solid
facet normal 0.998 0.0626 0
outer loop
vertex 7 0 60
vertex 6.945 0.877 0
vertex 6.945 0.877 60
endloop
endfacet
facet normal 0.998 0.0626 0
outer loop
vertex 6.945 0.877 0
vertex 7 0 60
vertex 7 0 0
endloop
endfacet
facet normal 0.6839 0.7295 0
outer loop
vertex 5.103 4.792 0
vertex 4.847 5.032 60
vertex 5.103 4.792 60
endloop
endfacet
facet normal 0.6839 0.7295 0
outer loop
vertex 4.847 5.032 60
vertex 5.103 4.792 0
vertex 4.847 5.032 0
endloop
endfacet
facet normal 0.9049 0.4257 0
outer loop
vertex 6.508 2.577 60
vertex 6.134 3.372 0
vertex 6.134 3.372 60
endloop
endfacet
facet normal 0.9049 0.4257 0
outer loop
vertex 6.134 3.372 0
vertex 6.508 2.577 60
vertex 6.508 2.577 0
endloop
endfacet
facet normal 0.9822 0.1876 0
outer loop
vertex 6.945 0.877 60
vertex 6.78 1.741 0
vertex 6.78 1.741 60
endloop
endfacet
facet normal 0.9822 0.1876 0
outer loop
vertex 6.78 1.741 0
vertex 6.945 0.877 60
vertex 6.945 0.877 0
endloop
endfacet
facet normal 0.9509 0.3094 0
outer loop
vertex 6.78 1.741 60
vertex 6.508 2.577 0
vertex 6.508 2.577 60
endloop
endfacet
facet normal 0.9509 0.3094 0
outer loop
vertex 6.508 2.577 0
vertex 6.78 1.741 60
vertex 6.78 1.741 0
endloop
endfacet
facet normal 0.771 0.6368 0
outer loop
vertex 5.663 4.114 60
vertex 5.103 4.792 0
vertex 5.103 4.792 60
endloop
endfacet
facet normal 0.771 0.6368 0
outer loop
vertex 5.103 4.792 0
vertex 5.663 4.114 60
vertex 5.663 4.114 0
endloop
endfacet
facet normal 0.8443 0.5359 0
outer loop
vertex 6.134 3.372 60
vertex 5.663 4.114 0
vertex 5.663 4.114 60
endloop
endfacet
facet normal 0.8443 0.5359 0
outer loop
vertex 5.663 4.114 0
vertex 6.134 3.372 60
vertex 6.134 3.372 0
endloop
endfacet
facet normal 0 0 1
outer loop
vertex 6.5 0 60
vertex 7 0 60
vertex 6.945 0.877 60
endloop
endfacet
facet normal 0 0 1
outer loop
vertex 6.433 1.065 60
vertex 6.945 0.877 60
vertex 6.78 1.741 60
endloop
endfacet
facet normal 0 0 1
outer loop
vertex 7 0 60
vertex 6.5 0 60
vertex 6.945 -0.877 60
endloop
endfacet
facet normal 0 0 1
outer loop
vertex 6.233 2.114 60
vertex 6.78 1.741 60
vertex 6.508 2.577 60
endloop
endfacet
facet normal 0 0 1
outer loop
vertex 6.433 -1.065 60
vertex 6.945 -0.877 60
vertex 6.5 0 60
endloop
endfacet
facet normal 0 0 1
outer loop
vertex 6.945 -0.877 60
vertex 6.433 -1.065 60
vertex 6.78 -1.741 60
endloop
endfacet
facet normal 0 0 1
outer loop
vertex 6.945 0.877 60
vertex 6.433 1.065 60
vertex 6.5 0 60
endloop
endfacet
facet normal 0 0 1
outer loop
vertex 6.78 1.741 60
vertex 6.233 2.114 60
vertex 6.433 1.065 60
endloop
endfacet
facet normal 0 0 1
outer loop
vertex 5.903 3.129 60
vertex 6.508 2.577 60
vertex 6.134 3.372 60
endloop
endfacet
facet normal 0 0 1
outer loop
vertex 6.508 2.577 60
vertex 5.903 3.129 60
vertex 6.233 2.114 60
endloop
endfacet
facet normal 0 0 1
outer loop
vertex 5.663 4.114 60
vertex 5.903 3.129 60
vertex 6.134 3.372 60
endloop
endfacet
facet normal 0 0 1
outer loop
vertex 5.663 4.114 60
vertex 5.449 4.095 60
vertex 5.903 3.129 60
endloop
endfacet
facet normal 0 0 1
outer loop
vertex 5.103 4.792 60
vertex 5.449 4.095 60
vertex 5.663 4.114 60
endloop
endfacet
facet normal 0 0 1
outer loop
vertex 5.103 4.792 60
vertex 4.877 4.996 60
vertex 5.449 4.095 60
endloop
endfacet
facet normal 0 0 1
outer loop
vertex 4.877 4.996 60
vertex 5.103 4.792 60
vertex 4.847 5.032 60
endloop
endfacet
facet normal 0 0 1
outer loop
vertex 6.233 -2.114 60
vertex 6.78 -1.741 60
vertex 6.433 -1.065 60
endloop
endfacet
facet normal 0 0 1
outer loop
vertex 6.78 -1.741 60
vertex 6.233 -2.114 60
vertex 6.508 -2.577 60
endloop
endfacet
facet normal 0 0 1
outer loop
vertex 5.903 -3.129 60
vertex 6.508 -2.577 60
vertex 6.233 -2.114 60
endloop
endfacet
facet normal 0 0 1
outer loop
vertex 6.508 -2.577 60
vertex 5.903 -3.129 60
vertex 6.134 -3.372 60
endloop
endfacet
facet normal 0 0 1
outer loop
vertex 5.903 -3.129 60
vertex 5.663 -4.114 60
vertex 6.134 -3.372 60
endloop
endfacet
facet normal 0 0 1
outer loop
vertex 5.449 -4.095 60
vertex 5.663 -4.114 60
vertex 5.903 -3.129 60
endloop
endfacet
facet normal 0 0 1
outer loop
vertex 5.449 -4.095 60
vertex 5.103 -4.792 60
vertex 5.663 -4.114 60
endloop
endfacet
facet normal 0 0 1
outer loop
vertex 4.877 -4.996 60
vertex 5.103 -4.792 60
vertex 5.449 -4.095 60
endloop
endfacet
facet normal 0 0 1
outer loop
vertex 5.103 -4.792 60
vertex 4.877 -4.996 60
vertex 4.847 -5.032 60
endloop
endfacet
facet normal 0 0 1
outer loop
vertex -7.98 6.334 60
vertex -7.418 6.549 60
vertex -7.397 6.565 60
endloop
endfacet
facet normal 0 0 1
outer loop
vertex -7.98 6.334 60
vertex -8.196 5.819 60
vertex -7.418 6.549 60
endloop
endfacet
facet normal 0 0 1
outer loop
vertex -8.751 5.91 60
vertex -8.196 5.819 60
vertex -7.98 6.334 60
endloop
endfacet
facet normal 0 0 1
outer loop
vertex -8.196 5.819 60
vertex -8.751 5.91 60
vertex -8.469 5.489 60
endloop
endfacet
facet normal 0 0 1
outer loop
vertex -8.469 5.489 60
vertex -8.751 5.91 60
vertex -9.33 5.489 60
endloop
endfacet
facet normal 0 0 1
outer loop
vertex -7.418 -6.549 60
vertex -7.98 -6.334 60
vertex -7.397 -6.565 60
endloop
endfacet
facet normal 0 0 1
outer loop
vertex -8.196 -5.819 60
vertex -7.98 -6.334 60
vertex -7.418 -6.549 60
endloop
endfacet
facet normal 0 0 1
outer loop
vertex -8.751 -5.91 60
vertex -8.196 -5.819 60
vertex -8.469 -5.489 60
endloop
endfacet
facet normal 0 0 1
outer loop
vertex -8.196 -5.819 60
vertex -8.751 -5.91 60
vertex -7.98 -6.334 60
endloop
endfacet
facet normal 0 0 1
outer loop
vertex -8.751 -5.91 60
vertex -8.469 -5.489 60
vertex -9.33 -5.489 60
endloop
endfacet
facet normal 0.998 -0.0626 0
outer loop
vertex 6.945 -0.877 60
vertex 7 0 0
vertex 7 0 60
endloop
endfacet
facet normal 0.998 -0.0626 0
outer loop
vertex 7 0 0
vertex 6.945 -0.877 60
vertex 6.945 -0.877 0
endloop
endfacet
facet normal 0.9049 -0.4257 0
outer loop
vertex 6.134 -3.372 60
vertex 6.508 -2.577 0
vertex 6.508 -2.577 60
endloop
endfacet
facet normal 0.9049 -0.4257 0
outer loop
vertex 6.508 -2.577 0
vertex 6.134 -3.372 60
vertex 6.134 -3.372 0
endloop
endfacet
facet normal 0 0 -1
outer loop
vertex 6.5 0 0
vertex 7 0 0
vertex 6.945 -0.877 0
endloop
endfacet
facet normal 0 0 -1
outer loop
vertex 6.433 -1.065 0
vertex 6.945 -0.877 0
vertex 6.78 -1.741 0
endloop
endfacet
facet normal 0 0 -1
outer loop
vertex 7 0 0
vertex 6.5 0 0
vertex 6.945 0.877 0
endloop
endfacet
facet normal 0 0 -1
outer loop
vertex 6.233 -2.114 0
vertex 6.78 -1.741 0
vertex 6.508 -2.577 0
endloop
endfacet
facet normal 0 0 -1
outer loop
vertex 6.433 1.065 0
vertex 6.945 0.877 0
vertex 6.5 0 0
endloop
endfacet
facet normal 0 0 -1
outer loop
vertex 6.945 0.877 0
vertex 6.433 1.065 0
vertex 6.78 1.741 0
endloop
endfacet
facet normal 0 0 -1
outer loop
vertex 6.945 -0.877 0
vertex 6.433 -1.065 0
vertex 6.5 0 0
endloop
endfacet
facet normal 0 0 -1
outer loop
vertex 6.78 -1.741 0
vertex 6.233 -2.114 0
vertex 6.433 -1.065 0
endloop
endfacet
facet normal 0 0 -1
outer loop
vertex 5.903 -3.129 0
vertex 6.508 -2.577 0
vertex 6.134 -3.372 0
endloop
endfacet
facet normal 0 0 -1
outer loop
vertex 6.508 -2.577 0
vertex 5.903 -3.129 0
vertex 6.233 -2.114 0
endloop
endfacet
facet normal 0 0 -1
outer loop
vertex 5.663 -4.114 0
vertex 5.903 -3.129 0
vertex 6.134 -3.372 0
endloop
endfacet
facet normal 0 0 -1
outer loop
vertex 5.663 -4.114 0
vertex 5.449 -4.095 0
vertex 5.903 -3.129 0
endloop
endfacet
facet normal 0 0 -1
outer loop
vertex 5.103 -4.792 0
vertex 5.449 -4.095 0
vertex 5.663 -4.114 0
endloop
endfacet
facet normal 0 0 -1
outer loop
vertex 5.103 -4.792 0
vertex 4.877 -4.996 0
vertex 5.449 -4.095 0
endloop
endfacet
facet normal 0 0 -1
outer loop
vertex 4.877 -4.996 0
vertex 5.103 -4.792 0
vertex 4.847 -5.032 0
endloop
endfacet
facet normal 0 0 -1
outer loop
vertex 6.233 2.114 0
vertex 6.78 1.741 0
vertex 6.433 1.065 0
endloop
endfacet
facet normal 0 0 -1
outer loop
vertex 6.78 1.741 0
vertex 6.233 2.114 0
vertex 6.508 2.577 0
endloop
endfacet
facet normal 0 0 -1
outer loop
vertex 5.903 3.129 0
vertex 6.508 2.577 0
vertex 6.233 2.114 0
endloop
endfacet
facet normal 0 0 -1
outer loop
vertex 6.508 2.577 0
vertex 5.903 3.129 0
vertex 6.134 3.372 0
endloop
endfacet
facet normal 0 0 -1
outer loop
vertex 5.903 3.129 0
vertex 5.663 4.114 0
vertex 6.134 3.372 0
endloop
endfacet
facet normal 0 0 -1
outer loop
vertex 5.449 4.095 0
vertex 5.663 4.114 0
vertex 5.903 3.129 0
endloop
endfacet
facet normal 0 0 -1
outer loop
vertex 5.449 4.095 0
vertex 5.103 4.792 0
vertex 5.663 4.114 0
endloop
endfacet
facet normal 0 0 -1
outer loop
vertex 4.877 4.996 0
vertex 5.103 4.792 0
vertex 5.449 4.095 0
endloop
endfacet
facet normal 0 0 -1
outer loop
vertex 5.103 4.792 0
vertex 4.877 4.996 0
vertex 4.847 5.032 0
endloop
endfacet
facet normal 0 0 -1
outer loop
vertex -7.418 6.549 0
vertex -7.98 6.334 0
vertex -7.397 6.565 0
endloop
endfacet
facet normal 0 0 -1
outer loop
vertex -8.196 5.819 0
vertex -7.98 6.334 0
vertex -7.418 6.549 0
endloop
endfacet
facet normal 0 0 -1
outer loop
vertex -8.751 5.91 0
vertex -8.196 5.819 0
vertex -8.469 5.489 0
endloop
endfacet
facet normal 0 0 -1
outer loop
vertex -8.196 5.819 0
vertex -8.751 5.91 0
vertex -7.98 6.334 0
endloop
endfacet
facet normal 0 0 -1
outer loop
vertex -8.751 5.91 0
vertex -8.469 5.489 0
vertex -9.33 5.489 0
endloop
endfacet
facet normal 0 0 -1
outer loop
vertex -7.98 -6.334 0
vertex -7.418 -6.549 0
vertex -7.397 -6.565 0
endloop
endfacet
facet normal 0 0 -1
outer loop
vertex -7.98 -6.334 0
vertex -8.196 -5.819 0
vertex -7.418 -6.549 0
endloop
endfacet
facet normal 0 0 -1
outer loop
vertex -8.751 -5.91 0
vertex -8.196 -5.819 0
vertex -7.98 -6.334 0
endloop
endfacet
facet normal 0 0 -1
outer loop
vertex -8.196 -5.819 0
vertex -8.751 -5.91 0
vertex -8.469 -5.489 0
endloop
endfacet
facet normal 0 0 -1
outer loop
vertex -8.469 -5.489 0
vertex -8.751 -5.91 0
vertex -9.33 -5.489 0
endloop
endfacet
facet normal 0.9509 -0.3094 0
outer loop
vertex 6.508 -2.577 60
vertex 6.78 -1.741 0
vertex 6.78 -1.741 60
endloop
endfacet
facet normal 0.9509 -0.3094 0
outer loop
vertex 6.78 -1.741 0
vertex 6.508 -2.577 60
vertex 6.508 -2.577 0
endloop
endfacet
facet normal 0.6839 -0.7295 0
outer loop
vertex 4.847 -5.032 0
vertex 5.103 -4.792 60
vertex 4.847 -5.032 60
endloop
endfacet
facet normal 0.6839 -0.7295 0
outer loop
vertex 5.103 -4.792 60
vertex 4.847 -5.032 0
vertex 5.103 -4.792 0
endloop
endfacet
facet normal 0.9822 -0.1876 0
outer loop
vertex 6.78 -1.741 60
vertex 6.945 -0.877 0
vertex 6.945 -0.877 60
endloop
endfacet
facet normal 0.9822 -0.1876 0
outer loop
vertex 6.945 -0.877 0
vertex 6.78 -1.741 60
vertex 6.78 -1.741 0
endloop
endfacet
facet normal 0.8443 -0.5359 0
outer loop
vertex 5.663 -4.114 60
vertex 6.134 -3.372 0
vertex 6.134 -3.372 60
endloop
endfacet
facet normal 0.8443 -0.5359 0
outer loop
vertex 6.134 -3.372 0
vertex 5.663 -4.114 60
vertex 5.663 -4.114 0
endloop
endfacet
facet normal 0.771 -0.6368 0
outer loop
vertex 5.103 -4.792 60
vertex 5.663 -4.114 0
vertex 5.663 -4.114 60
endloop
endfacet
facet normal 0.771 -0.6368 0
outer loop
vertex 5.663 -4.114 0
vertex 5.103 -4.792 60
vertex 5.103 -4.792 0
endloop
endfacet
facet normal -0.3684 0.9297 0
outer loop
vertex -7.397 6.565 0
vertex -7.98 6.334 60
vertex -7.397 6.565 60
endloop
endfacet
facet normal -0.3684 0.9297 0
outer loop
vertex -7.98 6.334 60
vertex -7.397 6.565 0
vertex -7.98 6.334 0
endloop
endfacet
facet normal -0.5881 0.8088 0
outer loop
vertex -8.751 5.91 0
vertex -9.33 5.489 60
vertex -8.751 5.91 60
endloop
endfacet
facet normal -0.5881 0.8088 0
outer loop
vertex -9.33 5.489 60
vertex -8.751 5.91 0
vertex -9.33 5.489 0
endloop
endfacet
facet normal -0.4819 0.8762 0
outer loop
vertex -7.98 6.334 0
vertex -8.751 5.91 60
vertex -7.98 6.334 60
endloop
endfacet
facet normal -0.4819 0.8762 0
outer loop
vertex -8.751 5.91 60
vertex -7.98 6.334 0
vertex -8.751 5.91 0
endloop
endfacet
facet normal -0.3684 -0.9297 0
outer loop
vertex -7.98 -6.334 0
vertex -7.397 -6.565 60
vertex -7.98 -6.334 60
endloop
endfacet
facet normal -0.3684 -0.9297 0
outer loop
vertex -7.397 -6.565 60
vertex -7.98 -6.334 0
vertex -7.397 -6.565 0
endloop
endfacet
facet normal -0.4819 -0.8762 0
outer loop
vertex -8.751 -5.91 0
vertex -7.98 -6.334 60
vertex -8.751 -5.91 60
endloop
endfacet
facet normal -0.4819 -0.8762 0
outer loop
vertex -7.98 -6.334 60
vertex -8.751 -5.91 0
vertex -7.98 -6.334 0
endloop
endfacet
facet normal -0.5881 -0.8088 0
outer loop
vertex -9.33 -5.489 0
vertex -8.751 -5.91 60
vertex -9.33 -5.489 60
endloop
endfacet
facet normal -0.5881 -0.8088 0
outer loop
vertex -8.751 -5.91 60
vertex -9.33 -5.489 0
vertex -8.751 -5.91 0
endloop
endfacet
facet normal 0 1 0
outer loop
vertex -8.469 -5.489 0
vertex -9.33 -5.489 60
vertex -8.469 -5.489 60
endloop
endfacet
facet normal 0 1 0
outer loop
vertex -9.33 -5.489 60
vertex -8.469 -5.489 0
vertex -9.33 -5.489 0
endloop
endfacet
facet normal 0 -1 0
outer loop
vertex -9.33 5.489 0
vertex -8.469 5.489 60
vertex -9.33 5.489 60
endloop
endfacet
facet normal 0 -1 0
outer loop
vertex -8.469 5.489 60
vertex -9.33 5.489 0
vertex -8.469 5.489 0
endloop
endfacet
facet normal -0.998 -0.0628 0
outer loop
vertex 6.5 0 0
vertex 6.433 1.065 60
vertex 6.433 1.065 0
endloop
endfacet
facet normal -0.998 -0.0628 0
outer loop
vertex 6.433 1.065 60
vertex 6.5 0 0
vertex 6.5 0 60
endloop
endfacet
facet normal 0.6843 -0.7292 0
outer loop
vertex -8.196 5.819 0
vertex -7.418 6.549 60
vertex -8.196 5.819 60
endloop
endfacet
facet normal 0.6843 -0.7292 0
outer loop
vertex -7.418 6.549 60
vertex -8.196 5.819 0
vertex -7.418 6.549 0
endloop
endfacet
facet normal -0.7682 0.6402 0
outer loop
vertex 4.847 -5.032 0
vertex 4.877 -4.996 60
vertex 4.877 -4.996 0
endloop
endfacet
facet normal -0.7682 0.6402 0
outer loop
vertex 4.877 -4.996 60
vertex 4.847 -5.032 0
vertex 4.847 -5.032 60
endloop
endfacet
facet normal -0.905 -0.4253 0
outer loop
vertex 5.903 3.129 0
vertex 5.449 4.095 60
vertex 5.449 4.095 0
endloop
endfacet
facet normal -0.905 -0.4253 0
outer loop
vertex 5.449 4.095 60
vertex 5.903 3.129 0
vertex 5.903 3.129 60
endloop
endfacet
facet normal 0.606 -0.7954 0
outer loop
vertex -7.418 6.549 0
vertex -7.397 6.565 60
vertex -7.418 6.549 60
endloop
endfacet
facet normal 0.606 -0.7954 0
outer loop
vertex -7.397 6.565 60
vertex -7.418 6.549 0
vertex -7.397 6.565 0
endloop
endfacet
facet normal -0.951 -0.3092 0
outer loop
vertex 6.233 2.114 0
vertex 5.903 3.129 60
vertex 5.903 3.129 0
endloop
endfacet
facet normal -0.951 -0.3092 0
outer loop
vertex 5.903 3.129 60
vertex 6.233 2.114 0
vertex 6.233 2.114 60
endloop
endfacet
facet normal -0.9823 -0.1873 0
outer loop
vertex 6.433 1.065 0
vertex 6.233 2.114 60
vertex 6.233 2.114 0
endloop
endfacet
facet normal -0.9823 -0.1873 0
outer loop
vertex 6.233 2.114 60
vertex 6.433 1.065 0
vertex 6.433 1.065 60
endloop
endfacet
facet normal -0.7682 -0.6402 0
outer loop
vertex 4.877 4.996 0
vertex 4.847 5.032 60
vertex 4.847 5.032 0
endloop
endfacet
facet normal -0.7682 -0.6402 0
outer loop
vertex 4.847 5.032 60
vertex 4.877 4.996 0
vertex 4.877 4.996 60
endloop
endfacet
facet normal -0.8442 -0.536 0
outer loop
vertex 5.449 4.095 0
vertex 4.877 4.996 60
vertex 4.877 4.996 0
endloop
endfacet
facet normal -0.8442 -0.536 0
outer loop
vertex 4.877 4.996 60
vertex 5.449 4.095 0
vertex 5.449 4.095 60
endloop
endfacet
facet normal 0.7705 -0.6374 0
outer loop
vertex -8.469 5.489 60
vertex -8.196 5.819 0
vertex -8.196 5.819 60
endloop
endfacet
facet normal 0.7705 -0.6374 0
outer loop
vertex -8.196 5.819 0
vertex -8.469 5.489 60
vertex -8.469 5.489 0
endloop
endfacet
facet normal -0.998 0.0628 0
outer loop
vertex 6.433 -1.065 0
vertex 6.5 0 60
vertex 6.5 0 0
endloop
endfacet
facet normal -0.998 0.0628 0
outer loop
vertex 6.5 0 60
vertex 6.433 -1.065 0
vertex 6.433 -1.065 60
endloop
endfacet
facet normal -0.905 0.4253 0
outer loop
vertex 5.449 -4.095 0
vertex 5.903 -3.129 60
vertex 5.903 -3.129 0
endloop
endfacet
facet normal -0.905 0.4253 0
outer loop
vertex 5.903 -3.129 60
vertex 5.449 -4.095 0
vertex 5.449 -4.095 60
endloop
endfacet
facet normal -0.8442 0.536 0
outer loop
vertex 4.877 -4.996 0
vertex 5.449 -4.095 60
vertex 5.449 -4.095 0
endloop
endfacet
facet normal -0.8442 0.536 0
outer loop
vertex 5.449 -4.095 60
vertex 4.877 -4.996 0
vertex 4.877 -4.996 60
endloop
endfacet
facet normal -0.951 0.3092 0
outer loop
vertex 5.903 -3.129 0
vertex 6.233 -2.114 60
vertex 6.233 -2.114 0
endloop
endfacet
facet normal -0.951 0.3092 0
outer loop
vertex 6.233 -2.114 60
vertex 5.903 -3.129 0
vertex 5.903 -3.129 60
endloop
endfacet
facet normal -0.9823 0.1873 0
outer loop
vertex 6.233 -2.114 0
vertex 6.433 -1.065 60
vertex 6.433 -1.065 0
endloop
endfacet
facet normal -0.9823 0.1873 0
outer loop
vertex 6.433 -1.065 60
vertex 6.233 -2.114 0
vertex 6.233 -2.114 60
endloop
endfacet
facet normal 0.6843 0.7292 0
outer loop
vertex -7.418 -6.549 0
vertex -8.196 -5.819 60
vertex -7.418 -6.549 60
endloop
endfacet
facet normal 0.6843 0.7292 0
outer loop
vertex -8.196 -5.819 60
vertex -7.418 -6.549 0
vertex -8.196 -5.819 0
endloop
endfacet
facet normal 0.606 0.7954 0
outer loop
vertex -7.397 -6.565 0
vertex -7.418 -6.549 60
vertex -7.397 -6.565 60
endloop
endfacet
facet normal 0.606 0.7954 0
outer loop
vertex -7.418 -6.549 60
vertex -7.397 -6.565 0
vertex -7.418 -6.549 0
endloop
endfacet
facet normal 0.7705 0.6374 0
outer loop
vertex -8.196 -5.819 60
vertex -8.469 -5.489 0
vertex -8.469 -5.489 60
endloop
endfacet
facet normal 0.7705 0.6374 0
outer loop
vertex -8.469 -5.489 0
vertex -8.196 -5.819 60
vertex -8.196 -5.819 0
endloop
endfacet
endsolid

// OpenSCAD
$fn = 50;


difference() {
	union() {
		cylinder(h = 60, r = 7.0000000000);
		translate(v = [-5.0000000000, 0, 0]) {
			cylinder(h = 60, r = 7.0000000000);
		}
	}
	union() {
		cylinder(h = 60, r = 3.2500000000);
		cylinder(h = 60, r = 1.8000000000);
		cylinder(h = 60, r = 1.8000000000);
		cylinder(h = 60, r = 1.8000000000);
		translate(v = [-9.5000000000, 0, 0]) {
			hull() {
				translate(v = [-3.7500000000, 0.0000000000, 0]) {
					cylinder(h = 60, r = 5.5000000000);
				}
				translate(v = [3.7500000000, 0.0000000000, 0]) {
					cylinder(h = 60, r = 5.5000000000);
				}
				translate(v = [-3.7500000000, -0.0000000000, 0]) {
					cylinder(h = 60, r = 5.5000000000);
				}
				translate(v = [3.7500000000, -0.0000000000, 0]) {
					cylinder(h = 60, r = 5.5000000000);
				}
			}
		}
		translate(v = [-2.0000000000, 0, 0.0000000000]) {
			cylinder(h = 60, r = 8.5000000000);
		}
	}
}
